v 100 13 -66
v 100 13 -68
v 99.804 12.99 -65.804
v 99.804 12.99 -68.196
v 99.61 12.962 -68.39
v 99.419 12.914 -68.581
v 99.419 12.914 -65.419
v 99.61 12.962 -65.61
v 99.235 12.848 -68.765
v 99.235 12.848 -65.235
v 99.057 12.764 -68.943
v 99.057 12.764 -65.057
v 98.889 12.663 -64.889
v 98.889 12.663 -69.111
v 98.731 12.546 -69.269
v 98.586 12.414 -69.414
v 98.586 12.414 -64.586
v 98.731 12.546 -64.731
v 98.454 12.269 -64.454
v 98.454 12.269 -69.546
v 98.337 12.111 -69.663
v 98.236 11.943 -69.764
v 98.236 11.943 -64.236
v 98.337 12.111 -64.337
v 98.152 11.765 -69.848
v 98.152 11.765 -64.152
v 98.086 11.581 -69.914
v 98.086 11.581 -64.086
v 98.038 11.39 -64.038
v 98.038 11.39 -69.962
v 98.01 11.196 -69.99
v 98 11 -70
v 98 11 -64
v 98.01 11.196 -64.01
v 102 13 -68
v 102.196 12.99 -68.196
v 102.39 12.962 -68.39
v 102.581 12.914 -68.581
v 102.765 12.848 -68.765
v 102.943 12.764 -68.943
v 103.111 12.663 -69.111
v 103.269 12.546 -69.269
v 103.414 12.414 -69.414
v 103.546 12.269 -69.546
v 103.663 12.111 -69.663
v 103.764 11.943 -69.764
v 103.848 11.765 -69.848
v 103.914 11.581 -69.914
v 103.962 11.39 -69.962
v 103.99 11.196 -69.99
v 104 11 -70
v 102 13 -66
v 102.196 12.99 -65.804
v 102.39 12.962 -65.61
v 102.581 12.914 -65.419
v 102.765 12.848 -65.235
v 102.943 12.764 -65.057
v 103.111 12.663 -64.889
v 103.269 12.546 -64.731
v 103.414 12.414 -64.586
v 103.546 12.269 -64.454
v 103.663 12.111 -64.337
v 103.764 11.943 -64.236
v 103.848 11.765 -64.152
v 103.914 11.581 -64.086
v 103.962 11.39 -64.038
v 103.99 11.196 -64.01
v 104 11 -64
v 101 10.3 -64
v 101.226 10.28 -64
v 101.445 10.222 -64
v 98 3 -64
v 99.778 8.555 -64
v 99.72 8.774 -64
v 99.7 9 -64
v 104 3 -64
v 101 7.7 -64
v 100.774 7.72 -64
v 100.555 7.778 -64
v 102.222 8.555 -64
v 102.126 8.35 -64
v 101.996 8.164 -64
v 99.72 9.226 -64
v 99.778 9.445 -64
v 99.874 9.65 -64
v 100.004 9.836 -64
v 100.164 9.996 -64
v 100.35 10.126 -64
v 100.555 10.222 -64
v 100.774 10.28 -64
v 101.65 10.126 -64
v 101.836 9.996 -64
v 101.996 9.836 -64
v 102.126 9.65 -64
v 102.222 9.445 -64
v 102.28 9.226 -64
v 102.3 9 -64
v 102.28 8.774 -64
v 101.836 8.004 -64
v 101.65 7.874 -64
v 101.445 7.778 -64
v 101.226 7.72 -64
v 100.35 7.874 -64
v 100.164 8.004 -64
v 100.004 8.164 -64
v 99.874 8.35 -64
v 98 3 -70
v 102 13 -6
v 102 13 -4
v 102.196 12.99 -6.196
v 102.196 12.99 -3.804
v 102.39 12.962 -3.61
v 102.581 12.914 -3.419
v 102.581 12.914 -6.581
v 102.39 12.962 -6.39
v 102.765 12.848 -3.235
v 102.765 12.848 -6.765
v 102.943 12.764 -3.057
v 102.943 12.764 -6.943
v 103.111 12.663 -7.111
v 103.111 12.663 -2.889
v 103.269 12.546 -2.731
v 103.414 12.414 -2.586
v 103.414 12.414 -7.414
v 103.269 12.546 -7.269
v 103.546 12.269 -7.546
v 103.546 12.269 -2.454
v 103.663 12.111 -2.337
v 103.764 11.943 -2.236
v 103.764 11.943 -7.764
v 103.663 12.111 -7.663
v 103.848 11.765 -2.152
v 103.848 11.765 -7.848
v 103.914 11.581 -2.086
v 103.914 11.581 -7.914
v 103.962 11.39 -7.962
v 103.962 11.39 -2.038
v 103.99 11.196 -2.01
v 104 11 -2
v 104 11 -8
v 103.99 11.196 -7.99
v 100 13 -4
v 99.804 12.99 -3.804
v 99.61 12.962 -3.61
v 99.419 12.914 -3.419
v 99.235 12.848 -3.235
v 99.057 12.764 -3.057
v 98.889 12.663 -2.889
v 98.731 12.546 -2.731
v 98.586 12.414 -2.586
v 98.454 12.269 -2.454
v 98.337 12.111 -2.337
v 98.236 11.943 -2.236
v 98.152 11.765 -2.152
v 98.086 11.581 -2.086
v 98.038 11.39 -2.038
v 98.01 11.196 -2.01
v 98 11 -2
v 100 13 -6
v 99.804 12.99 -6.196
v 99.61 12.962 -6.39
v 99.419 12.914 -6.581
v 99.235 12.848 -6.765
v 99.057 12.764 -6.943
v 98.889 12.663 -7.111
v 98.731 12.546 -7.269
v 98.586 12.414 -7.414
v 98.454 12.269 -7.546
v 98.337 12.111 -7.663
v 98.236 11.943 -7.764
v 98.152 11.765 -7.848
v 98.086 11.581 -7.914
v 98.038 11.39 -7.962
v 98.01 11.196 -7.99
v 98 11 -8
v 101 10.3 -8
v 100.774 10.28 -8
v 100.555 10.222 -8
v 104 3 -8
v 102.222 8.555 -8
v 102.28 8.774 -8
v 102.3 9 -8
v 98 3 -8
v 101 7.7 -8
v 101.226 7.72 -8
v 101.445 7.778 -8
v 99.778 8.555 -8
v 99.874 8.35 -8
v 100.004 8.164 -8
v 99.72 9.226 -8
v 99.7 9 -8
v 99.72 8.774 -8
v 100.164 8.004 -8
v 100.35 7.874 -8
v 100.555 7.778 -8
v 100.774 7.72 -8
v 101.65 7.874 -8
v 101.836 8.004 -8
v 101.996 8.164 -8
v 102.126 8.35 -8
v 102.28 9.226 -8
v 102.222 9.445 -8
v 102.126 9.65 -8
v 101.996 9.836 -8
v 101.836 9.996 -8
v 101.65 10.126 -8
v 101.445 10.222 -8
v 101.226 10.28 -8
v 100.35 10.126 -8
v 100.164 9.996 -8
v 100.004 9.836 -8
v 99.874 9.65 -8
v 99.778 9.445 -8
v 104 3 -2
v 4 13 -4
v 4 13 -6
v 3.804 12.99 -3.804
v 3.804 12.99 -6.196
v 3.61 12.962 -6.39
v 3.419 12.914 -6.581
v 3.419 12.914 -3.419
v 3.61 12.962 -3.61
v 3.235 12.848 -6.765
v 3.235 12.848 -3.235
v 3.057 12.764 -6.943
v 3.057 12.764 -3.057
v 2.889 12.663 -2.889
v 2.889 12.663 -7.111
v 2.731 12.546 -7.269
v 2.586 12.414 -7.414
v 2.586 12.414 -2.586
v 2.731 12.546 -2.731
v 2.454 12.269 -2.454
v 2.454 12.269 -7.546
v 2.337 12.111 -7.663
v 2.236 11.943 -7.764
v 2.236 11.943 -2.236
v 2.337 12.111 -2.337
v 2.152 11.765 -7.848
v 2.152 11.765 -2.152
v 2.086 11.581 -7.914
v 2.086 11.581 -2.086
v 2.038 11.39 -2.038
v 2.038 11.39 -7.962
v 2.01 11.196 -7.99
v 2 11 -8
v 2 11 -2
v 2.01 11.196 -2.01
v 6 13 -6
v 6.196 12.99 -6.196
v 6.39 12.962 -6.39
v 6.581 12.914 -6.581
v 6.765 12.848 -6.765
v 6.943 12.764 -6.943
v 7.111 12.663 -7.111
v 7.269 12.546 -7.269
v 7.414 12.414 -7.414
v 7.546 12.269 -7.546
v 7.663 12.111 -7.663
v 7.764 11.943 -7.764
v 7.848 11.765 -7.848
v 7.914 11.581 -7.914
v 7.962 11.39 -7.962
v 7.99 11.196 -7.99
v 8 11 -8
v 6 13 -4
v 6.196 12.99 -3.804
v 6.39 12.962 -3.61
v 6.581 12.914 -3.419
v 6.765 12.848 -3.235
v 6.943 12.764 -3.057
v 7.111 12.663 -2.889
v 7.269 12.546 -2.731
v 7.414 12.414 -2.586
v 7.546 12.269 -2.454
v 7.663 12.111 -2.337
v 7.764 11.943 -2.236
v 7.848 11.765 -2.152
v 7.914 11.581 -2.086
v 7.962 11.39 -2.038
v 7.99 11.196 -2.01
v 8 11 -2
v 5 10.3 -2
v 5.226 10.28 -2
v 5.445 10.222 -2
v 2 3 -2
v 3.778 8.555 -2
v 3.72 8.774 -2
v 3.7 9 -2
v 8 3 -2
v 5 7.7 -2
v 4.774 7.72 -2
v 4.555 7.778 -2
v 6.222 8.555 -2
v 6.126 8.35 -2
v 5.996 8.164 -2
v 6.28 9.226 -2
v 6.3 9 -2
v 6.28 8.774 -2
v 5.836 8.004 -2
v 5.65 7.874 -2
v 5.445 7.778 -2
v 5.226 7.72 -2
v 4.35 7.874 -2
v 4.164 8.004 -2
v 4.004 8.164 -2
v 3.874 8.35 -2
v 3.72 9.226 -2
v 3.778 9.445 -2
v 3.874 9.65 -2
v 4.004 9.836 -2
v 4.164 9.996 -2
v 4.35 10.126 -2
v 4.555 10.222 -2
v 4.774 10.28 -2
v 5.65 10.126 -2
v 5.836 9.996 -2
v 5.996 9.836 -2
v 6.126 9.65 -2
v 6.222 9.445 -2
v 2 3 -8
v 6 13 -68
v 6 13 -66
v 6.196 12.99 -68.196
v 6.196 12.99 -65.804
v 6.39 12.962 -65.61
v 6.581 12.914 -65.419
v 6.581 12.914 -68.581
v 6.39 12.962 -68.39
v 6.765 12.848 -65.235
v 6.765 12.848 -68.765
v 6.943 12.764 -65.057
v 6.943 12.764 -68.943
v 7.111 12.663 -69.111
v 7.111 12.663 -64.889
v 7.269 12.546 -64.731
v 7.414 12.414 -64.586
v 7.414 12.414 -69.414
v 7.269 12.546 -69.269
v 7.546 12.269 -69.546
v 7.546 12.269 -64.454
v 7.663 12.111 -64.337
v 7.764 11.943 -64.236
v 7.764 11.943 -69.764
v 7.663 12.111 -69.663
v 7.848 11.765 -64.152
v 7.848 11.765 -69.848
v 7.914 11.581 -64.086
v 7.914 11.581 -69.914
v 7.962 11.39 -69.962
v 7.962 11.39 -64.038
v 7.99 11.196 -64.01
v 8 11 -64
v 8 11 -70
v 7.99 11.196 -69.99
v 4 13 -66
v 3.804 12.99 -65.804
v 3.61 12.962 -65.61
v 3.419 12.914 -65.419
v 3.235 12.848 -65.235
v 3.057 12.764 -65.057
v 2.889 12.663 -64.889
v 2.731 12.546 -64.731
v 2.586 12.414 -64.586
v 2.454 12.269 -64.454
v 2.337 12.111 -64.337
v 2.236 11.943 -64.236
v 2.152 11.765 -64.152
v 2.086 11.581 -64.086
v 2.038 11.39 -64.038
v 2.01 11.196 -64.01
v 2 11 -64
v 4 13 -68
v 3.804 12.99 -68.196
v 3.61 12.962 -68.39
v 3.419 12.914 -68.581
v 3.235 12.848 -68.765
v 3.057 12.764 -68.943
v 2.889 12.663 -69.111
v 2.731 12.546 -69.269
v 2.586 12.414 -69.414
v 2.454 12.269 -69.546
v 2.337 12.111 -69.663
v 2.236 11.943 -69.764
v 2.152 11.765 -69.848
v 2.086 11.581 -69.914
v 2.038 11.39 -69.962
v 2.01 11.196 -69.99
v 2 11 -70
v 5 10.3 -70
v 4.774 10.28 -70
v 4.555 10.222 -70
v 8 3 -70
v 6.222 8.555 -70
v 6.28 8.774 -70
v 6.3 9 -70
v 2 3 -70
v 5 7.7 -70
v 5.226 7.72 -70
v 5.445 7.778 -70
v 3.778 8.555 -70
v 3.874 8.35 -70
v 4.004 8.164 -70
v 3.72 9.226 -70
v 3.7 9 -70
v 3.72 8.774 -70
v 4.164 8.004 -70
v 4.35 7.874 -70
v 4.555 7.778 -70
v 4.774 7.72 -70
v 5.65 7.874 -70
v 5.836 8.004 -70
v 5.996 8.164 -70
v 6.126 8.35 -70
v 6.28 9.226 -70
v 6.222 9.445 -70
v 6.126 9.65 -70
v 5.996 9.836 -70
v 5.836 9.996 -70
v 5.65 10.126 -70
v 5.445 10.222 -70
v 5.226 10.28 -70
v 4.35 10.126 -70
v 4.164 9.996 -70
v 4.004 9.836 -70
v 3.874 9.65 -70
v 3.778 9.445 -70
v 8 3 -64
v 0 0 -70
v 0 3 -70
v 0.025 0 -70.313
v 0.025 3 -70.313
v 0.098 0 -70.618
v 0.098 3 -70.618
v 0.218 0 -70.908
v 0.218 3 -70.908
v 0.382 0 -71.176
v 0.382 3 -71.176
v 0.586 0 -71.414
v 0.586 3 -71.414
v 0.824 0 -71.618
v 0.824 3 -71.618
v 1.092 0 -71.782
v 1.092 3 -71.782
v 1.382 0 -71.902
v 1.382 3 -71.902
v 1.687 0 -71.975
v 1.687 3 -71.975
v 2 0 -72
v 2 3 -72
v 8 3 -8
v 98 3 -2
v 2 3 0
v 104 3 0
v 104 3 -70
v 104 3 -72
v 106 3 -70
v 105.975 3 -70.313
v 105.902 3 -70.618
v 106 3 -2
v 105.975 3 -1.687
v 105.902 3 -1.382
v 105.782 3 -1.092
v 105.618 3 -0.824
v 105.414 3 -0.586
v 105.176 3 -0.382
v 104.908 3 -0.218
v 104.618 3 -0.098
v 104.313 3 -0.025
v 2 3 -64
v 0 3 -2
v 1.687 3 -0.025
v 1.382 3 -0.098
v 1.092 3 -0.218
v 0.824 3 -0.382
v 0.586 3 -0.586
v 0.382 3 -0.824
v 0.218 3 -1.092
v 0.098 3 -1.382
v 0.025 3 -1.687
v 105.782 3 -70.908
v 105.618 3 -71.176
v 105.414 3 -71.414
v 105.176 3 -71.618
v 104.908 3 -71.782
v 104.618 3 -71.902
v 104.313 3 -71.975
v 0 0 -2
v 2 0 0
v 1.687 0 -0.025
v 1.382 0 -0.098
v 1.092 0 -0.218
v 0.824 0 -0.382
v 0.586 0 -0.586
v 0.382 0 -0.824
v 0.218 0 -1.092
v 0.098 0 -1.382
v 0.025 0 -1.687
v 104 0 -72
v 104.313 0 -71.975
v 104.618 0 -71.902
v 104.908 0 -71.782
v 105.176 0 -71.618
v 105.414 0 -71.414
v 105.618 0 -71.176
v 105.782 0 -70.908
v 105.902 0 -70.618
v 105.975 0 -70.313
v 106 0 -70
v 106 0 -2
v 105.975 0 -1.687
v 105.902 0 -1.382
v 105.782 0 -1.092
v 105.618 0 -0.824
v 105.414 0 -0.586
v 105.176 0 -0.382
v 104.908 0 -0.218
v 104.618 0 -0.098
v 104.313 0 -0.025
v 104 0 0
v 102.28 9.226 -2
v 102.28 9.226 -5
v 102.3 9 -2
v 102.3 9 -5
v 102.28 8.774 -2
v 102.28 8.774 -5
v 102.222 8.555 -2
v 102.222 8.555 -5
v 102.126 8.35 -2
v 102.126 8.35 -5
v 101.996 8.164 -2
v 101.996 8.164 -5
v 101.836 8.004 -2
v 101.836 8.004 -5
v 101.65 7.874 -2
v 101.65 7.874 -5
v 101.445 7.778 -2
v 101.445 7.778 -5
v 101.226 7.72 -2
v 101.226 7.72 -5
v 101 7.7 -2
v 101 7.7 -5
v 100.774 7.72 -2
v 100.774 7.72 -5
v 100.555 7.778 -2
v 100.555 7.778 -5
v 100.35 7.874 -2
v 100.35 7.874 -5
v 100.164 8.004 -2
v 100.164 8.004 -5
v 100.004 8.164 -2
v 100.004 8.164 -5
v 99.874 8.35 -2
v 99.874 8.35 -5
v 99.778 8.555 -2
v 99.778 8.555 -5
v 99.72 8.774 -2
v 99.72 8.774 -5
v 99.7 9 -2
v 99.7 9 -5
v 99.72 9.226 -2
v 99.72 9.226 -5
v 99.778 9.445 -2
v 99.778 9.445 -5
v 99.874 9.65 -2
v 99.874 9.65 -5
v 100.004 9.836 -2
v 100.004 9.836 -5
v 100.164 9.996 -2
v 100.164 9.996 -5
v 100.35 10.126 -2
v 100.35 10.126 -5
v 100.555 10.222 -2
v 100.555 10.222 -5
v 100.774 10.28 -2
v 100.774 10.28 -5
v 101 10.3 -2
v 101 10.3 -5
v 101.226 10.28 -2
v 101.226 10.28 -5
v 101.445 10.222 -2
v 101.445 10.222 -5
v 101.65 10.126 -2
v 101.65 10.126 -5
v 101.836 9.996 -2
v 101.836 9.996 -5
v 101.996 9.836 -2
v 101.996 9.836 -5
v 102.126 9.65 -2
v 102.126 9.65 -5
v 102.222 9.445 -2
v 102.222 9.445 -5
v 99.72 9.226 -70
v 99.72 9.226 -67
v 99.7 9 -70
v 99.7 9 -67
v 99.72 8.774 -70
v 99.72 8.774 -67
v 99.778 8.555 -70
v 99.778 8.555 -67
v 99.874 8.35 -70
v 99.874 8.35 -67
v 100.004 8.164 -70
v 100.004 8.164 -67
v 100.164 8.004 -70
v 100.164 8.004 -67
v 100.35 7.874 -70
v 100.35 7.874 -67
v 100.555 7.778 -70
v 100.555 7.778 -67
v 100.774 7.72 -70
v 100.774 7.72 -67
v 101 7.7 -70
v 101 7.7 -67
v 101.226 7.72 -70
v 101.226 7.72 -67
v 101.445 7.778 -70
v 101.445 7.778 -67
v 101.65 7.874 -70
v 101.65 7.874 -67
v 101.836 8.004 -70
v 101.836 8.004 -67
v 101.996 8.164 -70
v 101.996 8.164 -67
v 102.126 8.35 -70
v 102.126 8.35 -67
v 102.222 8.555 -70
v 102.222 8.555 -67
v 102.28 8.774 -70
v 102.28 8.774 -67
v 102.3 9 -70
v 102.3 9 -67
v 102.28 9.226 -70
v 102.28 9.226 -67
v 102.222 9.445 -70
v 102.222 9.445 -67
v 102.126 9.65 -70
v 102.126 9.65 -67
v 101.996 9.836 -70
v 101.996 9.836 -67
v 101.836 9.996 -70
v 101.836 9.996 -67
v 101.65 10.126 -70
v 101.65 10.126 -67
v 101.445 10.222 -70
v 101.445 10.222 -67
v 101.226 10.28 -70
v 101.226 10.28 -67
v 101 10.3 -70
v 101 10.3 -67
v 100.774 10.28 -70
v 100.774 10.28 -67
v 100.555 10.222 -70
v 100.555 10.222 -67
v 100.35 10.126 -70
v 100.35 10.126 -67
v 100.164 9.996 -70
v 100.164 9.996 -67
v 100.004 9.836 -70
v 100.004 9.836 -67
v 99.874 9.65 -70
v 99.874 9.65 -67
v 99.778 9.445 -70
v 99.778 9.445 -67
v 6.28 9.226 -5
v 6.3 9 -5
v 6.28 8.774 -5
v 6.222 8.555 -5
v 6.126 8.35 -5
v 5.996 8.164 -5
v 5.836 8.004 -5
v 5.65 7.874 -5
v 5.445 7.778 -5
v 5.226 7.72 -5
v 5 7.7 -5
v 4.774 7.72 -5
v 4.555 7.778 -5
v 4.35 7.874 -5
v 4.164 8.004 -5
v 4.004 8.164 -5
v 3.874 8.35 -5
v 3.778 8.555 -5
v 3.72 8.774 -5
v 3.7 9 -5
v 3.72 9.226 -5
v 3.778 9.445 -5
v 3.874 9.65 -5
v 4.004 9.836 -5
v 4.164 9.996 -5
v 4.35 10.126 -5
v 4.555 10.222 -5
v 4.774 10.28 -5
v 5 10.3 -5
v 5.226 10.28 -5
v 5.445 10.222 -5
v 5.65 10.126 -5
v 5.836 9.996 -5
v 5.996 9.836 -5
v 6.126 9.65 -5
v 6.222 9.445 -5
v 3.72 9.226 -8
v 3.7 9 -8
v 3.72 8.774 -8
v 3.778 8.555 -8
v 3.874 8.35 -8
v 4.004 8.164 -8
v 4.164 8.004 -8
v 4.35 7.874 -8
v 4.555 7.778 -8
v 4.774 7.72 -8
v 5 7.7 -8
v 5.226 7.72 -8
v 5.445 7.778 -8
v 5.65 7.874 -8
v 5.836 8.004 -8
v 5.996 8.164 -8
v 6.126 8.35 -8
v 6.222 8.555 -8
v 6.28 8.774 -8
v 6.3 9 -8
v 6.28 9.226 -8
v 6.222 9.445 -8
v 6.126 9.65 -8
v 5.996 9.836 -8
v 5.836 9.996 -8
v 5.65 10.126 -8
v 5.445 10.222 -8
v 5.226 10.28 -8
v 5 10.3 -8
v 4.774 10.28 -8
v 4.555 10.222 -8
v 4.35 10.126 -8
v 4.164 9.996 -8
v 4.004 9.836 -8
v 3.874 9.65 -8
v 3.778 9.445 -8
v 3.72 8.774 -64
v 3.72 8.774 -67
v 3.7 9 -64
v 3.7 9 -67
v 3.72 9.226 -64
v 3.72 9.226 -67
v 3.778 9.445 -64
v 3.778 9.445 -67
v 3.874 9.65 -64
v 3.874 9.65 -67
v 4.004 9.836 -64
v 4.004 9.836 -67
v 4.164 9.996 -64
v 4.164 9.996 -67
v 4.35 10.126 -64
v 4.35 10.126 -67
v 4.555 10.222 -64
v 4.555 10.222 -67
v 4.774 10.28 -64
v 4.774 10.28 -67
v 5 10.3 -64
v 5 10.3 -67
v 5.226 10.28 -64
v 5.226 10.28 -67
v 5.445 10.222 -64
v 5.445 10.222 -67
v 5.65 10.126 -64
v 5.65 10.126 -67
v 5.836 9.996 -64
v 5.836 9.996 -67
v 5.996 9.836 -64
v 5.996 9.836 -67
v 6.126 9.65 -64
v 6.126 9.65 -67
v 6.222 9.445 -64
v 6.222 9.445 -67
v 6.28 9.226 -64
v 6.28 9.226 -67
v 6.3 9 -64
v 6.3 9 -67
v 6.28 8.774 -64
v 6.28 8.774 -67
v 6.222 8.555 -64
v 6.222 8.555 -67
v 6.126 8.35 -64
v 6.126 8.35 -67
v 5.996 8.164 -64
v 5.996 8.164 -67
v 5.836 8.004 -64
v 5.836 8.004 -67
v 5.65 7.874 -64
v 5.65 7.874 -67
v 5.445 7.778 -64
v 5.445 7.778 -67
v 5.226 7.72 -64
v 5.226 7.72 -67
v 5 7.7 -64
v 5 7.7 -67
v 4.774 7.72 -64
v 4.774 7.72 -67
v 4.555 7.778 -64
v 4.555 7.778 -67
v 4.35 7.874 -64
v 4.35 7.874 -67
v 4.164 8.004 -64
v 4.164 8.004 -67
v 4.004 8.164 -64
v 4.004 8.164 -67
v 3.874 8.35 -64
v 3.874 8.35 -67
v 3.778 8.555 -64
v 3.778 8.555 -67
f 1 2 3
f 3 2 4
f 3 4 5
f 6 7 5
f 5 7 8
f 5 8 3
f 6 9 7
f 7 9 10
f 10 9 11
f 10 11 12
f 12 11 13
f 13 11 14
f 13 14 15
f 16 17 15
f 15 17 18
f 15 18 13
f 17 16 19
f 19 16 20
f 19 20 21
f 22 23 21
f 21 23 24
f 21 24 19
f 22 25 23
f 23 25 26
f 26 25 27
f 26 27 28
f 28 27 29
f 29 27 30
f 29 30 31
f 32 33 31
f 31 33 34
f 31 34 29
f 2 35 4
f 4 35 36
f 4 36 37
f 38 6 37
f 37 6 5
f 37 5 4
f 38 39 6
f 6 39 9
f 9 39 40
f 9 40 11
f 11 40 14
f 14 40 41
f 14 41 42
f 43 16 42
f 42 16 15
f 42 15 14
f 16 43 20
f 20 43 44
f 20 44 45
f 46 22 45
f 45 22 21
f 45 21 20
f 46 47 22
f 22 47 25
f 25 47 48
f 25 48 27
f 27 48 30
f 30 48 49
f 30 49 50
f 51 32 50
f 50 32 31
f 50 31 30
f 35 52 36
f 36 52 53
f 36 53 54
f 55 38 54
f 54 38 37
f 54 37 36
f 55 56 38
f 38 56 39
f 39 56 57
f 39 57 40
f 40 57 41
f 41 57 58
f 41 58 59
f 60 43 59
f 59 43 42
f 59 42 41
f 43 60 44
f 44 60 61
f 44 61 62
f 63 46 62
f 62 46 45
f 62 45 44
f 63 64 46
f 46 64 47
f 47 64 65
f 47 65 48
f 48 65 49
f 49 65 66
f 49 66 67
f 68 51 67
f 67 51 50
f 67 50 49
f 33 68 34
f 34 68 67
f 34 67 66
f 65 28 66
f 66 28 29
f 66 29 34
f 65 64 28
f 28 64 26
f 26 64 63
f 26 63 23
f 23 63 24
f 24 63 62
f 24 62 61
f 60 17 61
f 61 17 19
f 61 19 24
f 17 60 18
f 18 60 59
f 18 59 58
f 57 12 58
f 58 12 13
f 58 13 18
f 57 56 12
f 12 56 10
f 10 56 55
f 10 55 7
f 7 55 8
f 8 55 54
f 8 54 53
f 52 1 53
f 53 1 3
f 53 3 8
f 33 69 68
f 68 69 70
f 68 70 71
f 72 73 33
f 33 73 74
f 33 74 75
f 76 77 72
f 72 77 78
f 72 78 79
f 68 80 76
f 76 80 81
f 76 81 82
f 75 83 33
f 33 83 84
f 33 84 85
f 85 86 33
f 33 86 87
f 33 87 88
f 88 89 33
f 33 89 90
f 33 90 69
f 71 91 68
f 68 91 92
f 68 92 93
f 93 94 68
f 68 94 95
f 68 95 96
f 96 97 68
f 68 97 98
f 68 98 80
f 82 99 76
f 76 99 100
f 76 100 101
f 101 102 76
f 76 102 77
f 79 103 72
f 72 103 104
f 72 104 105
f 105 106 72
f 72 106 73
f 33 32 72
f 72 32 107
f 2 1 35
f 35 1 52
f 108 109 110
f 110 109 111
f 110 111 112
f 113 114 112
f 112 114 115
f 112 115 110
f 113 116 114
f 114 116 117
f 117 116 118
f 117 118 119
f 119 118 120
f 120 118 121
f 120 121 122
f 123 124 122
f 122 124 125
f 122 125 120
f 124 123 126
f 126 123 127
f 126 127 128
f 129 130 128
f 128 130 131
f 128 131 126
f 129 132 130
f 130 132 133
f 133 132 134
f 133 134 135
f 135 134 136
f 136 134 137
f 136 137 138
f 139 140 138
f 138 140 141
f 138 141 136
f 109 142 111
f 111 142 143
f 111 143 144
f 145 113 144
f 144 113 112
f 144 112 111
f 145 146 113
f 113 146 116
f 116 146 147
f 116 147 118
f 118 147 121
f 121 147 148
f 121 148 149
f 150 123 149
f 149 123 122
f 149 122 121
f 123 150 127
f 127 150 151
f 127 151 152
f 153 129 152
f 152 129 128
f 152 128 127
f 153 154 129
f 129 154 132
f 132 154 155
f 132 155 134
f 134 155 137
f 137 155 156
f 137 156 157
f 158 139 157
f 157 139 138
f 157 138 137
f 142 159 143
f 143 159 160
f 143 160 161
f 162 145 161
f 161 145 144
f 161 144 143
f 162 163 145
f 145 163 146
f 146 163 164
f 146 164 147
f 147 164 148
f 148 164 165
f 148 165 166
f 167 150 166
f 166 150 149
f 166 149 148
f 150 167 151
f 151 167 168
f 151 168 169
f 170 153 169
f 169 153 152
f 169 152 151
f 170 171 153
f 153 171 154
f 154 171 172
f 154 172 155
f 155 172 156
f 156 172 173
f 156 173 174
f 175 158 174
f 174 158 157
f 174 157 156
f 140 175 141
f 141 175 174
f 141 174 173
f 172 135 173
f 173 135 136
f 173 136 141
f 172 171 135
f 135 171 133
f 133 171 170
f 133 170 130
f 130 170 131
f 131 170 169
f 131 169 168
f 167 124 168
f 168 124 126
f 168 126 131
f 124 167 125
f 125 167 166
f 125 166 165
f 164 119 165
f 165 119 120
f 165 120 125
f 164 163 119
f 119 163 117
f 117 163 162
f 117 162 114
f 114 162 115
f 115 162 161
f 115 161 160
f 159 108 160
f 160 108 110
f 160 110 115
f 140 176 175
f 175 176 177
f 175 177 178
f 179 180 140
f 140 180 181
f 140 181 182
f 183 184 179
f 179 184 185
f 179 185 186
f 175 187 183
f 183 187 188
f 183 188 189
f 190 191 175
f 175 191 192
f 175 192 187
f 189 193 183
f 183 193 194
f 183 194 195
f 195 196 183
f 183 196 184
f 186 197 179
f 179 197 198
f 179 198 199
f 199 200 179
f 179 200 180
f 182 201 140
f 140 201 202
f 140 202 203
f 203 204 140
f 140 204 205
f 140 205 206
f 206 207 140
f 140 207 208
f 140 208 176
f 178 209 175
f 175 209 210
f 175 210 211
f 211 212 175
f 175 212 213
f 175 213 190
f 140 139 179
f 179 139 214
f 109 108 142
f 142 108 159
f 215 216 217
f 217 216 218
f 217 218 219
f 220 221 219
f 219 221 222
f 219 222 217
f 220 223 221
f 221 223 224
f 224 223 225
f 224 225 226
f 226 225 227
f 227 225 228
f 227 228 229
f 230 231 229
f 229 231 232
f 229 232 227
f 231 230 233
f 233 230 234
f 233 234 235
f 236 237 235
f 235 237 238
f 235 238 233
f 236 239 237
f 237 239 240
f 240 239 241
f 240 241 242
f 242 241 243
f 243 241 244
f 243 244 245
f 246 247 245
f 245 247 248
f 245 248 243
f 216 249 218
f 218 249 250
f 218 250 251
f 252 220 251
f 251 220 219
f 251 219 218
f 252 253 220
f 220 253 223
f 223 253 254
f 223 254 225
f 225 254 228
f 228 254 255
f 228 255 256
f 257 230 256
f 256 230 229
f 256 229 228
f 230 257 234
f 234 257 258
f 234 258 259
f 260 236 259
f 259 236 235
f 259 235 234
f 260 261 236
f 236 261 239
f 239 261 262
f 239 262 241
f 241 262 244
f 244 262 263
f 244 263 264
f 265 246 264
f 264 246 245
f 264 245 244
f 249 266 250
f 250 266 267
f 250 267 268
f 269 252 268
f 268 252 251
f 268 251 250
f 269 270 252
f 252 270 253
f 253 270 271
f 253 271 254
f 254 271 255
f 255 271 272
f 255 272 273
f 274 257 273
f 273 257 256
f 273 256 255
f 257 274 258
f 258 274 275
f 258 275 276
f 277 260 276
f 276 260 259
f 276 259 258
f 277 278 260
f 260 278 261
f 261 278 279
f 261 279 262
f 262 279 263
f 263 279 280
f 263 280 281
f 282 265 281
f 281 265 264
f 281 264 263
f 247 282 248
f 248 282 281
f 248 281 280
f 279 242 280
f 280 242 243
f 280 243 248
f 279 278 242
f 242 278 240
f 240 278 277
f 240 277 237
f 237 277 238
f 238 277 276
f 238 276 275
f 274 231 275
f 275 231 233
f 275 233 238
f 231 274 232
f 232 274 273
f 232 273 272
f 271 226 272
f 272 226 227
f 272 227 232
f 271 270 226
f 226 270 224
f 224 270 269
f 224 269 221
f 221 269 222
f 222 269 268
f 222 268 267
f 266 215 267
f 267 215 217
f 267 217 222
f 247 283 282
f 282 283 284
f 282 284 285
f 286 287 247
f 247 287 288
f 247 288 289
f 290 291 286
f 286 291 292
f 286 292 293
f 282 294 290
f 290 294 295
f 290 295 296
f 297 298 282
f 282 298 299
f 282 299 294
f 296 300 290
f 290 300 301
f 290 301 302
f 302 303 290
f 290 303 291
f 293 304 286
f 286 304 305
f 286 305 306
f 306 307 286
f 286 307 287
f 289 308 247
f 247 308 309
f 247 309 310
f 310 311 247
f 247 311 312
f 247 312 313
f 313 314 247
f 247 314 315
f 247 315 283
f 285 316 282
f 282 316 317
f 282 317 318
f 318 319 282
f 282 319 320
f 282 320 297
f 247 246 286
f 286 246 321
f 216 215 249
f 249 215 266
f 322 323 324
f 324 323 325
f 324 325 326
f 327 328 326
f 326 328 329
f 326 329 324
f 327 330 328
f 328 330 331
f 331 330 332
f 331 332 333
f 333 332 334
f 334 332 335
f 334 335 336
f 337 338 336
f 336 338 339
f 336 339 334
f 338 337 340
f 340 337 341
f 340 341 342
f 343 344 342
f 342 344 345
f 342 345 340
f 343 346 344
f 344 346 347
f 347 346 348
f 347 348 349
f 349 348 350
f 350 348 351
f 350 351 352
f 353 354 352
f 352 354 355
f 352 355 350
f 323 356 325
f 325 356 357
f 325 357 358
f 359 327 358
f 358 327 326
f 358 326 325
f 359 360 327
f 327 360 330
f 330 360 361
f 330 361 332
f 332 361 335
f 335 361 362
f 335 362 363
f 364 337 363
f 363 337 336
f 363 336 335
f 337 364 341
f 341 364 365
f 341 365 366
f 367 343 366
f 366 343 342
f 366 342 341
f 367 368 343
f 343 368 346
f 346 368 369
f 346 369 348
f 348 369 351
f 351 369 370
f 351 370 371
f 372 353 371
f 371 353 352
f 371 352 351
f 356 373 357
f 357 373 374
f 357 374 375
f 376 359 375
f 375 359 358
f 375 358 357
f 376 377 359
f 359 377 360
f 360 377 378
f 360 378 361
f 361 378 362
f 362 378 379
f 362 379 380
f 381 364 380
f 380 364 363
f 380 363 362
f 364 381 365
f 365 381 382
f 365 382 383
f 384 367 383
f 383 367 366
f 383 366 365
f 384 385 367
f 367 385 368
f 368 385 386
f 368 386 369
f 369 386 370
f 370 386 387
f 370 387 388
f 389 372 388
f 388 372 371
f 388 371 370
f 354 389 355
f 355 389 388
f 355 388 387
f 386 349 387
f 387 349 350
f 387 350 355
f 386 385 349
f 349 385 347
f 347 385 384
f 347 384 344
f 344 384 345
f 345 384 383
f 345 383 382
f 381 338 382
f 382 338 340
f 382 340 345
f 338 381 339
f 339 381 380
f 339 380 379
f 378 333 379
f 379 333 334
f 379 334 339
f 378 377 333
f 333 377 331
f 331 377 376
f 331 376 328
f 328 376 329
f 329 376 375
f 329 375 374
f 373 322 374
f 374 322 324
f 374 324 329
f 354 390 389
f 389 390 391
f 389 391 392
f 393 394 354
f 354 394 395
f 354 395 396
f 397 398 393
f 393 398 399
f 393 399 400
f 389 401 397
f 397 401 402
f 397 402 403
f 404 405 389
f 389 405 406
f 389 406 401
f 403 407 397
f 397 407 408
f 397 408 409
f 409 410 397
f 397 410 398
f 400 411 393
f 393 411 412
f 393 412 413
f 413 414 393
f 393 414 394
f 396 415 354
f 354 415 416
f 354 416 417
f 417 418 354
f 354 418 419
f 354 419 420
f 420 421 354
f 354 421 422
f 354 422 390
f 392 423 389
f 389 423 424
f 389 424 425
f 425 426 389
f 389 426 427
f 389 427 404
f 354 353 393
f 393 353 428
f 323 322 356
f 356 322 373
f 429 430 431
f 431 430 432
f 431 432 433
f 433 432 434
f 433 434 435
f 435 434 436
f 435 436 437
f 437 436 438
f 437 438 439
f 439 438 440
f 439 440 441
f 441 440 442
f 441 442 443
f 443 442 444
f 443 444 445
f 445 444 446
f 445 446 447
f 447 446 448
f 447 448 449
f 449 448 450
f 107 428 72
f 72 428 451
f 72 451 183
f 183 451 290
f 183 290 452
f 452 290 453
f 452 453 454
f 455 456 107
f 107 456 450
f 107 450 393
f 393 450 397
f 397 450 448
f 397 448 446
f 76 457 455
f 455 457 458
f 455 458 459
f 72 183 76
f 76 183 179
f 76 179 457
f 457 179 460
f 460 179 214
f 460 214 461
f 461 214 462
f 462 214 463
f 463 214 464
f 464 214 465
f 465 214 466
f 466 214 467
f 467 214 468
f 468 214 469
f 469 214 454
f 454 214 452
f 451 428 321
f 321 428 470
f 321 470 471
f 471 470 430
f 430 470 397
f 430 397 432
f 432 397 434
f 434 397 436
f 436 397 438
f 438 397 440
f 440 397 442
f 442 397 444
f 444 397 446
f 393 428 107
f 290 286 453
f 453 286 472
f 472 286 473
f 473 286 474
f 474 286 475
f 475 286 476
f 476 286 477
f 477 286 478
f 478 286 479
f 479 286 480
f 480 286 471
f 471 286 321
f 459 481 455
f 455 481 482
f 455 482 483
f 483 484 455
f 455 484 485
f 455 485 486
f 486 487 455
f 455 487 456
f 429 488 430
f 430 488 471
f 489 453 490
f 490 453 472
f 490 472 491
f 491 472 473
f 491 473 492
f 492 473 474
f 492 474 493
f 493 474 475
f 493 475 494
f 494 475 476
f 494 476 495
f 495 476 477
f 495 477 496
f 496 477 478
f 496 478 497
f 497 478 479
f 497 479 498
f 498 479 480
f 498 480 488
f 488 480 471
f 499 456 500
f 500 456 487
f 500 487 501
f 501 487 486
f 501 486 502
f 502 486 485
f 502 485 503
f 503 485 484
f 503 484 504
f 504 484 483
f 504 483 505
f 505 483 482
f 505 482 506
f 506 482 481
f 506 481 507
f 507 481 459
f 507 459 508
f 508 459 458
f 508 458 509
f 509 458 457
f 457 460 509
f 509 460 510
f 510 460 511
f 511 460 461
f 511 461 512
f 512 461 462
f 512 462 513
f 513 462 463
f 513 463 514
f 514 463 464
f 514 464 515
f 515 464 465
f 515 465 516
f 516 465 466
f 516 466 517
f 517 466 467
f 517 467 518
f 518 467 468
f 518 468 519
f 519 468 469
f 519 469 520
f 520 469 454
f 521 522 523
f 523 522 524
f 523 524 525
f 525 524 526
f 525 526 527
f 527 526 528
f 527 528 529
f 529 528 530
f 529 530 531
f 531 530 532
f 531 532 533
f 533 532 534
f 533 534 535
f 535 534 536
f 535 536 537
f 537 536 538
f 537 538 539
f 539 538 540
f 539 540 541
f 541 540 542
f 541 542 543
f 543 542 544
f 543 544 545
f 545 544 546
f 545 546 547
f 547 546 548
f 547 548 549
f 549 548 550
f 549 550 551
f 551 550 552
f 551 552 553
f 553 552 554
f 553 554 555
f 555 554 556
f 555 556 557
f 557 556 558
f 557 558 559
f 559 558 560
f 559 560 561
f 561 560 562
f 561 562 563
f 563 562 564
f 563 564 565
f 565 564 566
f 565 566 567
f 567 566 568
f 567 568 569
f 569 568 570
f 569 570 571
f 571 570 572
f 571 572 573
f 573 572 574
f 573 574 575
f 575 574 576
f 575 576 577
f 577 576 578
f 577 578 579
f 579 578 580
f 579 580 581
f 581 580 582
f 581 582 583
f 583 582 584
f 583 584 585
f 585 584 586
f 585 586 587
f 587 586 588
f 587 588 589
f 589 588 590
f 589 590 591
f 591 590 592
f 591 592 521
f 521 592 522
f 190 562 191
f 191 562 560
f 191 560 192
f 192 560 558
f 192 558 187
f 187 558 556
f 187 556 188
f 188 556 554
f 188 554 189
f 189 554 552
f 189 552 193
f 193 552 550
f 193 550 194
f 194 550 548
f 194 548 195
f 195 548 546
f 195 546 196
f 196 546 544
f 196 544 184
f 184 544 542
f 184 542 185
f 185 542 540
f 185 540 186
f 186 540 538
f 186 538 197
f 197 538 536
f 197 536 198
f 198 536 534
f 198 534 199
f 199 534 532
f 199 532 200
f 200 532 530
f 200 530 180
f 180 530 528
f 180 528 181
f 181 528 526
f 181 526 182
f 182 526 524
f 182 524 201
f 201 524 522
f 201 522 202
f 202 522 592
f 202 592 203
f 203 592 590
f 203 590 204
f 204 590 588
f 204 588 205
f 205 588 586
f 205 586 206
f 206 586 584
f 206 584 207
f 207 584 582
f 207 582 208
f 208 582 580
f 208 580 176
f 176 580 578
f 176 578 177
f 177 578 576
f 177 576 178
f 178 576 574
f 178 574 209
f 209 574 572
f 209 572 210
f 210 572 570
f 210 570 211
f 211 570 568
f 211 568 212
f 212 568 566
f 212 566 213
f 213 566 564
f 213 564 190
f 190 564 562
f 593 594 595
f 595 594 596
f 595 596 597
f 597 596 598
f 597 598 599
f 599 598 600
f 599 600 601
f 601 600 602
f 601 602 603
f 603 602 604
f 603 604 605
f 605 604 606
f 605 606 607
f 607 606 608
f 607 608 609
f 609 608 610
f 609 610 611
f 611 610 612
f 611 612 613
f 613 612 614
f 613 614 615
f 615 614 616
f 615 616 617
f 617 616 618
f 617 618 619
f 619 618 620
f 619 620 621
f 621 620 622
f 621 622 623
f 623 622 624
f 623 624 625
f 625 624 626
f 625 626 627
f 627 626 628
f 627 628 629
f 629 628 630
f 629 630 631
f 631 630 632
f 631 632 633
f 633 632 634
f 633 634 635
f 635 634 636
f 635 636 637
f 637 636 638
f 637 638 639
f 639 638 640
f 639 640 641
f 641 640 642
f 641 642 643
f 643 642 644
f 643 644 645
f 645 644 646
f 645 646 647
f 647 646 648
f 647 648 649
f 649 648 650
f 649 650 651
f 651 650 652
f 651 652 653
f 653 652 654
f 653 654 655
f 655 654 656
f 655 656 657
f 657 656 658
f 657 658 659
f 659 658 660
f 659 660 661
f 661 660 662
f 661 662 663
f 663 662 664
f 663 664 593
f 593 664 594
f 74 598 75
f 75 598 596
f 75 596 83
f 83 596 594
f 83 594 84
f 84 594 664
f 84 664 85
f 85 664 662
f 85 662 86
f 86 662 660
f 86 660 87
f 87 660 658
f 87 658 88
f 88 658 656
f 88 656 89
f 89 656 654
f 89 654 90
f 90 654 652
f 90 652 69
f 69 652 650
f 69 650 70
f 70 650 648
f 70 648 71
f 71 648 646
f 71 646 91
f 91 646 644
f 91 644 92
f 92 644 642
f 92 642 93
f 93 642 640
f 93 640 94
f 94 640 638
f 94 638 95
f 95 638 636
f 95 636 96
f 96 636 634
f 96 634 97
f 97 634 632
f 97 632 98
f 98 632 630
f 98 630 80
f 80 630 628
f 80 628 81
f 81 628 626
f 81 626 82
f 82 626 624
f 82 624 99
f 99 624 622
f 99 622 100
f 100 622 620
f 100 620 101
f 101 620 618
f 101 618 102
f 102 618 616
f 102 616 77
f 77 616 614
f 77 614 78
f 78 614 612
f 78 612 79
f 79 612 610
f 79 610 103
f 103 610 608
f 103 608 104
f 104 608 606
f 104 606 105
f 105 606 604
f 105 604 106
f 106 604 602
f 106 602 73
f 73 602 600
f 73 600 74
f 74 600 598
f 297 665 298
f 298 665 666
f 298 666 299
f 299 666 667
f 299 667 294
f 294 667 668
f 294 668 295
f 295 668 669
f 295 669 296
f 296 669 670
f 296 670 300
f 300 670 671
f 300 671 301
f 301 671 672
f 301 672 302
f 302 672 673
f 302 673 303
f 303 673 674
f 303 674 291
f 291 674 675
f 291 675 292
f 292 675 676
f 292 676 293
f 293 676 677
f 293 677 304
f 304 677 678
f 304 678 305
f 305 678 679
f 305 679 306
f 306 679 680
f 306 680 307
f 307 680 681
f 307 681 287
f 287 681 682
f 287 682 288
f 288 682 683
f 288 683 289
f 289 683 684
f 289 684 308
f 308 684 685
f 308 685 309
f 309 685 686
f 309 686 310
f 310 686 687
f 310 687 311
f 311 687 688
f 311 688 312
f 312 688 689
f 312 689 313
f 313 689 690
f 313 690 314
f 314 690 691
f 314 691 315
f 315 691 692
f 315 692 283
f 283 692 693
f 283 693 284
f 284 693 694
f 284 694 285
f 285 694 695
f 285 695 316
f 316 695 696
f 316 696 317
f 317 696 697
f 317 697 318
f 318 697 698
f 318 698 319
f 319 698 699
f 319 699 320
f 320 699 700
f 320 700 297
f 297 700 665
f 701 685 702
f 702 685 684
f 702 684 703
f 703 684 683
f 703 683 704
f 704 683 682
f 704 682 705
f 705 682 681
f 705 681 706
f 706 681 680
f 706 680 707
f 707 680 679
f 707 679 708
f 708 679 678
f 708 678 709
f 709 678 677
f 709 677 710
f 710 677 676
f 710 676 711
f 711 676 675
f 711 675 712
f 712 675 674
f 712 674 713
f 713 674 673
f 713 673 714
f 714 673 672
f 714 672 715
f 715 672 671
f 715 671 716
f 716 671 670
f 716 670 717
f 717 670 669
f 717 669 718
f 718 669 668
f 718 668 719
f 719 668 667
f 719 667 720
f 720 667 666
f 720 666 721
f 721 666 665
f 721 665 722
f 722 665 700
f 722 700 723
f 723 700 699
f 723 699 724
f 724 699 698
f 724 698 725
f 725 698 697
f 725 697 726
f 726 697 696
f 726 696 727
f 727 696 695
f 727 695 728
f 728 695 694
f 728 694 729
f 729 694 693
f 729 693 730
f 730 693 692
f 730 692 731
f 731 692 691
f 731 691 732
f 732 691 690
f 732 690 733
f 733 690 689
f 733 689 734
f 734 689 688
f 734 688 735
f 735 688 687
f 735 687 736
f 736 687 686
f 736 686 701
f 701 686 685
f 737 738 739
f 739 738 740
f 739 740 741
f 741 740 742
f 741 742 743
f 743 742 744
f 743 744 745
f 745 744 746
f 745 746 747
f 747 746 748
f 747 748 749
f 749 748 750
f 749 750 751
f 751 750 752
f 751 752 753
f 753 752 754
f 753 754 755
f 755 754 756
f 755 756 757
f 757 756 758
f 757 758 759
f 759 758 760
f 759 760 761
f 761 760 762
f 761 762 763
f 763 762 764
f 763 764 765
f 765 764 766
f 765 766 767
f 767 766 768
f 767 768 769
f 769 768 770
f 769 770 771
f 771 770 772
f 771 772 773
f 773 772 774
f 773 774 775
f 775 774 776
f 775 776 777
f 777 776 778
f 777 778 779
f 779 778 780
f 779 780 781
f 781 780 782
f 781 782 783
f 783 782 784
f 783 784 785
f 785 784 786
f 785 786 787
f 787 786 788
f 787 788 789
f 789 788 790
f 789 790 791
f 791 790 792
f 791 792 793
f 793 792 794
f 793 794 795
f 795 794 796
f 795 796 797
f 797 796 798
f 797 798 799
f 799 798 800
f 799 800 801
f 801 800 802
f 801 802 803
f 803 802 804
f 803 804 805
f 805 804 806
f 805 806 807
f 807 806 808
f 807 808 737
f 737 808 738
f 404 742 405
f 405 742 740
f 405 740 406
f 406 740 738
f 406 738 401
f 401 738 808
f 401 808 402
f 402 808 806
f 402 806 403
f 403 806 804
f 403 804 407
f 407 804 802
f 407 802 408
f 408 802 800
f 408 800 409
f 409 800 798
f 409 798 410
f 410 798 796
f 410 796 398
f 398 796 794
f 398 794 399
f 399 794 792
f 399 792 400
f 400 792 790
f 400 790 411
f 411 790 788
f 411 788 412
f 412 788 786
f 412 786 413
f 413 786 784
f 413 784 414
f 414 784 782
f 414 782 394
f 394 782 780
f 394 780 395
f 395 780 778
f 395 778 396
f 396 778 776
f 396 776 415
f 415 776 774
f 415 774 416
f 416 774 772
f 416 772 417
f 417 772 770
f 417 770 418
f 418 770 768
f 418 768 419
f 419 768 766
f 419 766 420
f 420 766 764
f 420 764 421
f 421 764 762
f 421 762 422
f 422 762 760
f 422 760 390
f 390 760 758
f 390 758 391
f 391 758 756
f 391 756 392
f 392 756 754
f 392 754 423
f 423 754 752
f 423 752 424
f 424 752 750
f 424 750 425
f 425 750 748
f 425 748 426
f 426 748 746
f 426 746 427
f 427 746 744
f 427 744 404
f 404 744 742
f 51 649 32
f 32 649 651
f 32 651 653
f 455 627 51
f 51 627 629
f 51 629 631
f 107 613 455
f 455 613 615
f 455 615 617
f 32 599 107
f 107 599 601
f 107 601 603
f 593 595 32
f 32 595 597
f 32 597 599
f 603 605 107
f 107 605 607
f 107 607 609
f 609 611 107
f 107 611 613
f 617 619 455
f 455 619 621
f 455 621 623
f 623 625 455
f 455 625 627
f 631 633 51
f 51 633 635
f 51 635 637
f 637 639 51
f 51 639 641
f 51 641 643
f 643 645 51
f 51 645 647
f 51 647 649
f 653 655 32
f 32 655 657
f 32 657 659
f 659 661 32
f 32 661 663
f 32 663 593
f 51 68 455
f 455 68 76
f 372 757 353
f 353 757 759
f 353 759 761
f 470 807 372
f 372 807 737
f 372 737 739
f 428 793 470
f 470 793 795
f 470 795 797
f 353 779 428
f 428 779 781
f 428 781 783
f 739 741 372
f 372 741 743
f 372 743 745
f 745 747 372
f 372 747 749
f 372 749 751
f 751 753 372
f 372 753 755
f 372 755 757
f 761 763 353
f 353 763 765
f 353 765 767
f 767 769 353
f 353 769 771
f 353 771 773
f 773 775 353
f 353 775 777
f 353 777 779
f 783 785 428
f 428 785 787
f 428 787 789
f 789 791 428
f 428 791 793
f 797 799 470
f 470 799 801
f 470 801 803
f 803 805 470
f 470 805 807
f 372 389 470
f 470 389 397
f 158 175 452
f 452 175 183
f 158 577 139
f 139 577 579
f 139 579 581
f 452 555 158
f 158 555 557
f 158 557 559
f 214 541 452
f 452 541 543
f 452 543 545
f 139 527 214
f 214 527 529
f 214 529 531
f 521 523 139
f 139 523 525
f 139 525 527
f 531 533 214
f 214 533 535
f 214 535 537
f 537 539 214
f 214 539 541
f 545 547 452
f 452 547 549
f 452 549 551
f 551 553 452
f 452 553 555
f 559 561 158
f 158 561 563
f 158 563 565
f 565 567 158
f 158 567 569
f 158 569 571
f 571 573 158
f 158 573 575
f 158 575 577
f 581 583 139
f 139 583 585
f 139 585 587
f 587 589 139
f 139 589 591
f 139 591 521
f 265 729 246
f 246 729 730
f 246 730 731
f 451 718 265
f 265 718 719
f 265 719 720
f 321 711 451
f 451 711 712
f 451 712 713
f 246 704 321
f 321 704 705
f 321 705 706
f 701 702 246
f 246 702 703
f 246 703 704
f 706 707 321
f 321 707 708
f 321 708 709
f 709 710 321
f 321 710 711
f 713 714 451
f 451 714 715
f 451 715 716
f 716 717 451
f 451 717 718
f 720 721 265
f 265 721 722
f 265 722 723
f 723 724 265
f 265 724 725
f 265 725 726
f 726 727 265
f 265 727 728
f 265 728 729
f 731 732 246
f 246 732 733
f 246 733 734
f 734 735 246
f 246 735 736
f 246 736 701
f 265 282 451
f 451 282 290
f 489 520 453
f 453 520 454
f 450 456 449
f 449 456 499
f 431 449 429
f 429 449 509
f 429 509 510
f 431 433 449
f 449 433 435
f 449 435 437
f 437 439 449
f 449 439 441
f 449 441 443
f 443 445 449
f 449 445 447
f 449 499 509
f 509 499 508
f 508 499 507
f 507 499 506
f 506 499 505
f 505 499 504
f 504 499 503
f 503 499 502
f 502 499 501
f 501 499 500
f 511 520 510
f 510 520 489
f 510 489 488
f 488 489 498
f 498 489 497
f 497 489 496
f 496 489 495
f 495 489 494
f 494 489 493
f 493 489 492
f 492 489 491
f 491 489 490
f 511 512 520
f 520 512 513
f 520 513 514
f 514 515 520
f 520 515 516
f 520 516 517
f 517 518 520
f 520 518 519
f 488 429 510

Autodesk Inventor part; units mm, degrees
ref_plane "YZ Plane" through (0, 0, 0) normal (1, 0, 0) x (0, 1, 0)
ref_plane "XZ Plane" through (0, 0, 0) normal (0, 1, 0) x (-1, 0, 0)
ref_plane "XY Plane" through (0, 0, 0) normal (0, 0, 1) x (1, 0, 0)
sketch "Náčrt1" plane through (0, 0, 0) normal (0, 1, 0) x (-1, 0, 0)
  line L0 (0, 0) -> (-106, 0)
  line L1 (-106, 0) -> (-106, -72)
  line L2 (-106, -72) -> (0, -72)
  line L3 (0, -72) -> (0, 0)
  dimension "d0" = 106
  dimension "d1" = 72
extrude "Vysunutí1" add sketch "Náčrt1" along normal blind 3
sketch "Náčrt2" plane through (0, 3, 0) normal (0, 1, 0) x (1, 0, 0)
  line L0 (0, 72) -> (0, 0) projected
  line L1 (106, 0) -> (106, 72) projected
  line L2 (0, 0) -> (106, 0)
  line L3 (106, 0) -> (106, 72)
  line L4 (106, 72) -> (0, 72)
  line L5 (0, 72) -> (0, 0)
  line L6 (2, 70) -> (104, 70)
  line L7 (104, 70) -> (104, 2)
  line L8 (104, 2) -> (2, 2)
  line L9 (2, 2) -> (2, 70)
  line L10 (2, 2) -> (8, 2)
  line L11 (8, 2) -> (8, 8)
  line L12 (8, 8) -> (2, 8)
  line L13 (2, 8) -> (2, 2)
  line L14 (2, 70) -> (8, 70)
  line L15 (8, 70) -> (8, 64)
  line L16 (8, 64) -> (2, 64)
  line L17 (2, 64) -> (2, 70)
  line L18 (53, -6.8672) -> (53, 83.3894) construction
  line L19 (104, 2) -> (104, 70)
  line L20 (104, 2) -> (98, 2)
  line L21 (98, 2) -> (98, 8)
  line L22 (98, 8) -> (104, 8)
  line L23 (104, 8) -> (104, 2)
  line L24 (104, 70) -> (98, 70)
  line L25 (98, 70) -> (98, 64)
  line L26 (98, 64) -> (104, 64)
  line L27 (104, 64) -> (104, 70)
  point P0 (2, 64)
  dimension "d4" = 2
  dimension "d5" = 6
  dimension "d6" = 6
  dimension "d7" = 6
  dimension "d8" = 6
extrude "Vysunutí2" add sketch "Náčrt2" along normal blind 10 contours L6 L15 L16 L9 | L6 L7 L26 L25 | L12 L11 L8 L9 | L7 L8 L21 L22
sketch "Náčrt3" plane through (2, 3, -2) normal (0, 0, 1) x (1, 0, 0)
  circle A0 centre (3, 6) radius 1.3
  line L0 (0, 10) -> (6, 10) projected
  line L1 (6, 0) -> (6, 10) projected
  line L2 (-2, 0) -> (104, 0) projected
  circle A1 centre (99, 6) radius 1.3
  line L3 (96, 10) -> (102, 10) projected
  line L4 (102, 0) -> (102, 10) projected
  point P0 (-2, -3)
  dimension "d11" = 2.6
  dimension "d12" = 4
  dimension "d13" = 3
  dimension "d14" = 6
  dimension "d15" = 2.6
  dimension "d16" = 4
  dimension "d17" = 3
  dimension "d18" = 6
extrude "Vysunutí3" cut sketch "Náčrt3" against normal blind 100
fillet "Zaoblení1" radius 2 20 edges at (106, 1.5, 0) (106, 1.5, -72) (0, 1.5, 0) (0, 1.5, -72) (2, 13, -67) (5, 13, -70) (8, 13, -67) (5, 13, -64) (8, 13, -5) (5, 13, -8) (2, 13, -5) (5, 13, -2) (98, 13, -5) (101, 13, -2) (104, 13, -5) (101, 13, -8) (104, 13, -67) (101, 13, -70) (98, 13, -67) (101, 13, -64)
equation "\"d6\" = d5"
equation "\"d7\" = d5"
equation "\"d8\" = d5"
properties part number "RPIholderTOP"
